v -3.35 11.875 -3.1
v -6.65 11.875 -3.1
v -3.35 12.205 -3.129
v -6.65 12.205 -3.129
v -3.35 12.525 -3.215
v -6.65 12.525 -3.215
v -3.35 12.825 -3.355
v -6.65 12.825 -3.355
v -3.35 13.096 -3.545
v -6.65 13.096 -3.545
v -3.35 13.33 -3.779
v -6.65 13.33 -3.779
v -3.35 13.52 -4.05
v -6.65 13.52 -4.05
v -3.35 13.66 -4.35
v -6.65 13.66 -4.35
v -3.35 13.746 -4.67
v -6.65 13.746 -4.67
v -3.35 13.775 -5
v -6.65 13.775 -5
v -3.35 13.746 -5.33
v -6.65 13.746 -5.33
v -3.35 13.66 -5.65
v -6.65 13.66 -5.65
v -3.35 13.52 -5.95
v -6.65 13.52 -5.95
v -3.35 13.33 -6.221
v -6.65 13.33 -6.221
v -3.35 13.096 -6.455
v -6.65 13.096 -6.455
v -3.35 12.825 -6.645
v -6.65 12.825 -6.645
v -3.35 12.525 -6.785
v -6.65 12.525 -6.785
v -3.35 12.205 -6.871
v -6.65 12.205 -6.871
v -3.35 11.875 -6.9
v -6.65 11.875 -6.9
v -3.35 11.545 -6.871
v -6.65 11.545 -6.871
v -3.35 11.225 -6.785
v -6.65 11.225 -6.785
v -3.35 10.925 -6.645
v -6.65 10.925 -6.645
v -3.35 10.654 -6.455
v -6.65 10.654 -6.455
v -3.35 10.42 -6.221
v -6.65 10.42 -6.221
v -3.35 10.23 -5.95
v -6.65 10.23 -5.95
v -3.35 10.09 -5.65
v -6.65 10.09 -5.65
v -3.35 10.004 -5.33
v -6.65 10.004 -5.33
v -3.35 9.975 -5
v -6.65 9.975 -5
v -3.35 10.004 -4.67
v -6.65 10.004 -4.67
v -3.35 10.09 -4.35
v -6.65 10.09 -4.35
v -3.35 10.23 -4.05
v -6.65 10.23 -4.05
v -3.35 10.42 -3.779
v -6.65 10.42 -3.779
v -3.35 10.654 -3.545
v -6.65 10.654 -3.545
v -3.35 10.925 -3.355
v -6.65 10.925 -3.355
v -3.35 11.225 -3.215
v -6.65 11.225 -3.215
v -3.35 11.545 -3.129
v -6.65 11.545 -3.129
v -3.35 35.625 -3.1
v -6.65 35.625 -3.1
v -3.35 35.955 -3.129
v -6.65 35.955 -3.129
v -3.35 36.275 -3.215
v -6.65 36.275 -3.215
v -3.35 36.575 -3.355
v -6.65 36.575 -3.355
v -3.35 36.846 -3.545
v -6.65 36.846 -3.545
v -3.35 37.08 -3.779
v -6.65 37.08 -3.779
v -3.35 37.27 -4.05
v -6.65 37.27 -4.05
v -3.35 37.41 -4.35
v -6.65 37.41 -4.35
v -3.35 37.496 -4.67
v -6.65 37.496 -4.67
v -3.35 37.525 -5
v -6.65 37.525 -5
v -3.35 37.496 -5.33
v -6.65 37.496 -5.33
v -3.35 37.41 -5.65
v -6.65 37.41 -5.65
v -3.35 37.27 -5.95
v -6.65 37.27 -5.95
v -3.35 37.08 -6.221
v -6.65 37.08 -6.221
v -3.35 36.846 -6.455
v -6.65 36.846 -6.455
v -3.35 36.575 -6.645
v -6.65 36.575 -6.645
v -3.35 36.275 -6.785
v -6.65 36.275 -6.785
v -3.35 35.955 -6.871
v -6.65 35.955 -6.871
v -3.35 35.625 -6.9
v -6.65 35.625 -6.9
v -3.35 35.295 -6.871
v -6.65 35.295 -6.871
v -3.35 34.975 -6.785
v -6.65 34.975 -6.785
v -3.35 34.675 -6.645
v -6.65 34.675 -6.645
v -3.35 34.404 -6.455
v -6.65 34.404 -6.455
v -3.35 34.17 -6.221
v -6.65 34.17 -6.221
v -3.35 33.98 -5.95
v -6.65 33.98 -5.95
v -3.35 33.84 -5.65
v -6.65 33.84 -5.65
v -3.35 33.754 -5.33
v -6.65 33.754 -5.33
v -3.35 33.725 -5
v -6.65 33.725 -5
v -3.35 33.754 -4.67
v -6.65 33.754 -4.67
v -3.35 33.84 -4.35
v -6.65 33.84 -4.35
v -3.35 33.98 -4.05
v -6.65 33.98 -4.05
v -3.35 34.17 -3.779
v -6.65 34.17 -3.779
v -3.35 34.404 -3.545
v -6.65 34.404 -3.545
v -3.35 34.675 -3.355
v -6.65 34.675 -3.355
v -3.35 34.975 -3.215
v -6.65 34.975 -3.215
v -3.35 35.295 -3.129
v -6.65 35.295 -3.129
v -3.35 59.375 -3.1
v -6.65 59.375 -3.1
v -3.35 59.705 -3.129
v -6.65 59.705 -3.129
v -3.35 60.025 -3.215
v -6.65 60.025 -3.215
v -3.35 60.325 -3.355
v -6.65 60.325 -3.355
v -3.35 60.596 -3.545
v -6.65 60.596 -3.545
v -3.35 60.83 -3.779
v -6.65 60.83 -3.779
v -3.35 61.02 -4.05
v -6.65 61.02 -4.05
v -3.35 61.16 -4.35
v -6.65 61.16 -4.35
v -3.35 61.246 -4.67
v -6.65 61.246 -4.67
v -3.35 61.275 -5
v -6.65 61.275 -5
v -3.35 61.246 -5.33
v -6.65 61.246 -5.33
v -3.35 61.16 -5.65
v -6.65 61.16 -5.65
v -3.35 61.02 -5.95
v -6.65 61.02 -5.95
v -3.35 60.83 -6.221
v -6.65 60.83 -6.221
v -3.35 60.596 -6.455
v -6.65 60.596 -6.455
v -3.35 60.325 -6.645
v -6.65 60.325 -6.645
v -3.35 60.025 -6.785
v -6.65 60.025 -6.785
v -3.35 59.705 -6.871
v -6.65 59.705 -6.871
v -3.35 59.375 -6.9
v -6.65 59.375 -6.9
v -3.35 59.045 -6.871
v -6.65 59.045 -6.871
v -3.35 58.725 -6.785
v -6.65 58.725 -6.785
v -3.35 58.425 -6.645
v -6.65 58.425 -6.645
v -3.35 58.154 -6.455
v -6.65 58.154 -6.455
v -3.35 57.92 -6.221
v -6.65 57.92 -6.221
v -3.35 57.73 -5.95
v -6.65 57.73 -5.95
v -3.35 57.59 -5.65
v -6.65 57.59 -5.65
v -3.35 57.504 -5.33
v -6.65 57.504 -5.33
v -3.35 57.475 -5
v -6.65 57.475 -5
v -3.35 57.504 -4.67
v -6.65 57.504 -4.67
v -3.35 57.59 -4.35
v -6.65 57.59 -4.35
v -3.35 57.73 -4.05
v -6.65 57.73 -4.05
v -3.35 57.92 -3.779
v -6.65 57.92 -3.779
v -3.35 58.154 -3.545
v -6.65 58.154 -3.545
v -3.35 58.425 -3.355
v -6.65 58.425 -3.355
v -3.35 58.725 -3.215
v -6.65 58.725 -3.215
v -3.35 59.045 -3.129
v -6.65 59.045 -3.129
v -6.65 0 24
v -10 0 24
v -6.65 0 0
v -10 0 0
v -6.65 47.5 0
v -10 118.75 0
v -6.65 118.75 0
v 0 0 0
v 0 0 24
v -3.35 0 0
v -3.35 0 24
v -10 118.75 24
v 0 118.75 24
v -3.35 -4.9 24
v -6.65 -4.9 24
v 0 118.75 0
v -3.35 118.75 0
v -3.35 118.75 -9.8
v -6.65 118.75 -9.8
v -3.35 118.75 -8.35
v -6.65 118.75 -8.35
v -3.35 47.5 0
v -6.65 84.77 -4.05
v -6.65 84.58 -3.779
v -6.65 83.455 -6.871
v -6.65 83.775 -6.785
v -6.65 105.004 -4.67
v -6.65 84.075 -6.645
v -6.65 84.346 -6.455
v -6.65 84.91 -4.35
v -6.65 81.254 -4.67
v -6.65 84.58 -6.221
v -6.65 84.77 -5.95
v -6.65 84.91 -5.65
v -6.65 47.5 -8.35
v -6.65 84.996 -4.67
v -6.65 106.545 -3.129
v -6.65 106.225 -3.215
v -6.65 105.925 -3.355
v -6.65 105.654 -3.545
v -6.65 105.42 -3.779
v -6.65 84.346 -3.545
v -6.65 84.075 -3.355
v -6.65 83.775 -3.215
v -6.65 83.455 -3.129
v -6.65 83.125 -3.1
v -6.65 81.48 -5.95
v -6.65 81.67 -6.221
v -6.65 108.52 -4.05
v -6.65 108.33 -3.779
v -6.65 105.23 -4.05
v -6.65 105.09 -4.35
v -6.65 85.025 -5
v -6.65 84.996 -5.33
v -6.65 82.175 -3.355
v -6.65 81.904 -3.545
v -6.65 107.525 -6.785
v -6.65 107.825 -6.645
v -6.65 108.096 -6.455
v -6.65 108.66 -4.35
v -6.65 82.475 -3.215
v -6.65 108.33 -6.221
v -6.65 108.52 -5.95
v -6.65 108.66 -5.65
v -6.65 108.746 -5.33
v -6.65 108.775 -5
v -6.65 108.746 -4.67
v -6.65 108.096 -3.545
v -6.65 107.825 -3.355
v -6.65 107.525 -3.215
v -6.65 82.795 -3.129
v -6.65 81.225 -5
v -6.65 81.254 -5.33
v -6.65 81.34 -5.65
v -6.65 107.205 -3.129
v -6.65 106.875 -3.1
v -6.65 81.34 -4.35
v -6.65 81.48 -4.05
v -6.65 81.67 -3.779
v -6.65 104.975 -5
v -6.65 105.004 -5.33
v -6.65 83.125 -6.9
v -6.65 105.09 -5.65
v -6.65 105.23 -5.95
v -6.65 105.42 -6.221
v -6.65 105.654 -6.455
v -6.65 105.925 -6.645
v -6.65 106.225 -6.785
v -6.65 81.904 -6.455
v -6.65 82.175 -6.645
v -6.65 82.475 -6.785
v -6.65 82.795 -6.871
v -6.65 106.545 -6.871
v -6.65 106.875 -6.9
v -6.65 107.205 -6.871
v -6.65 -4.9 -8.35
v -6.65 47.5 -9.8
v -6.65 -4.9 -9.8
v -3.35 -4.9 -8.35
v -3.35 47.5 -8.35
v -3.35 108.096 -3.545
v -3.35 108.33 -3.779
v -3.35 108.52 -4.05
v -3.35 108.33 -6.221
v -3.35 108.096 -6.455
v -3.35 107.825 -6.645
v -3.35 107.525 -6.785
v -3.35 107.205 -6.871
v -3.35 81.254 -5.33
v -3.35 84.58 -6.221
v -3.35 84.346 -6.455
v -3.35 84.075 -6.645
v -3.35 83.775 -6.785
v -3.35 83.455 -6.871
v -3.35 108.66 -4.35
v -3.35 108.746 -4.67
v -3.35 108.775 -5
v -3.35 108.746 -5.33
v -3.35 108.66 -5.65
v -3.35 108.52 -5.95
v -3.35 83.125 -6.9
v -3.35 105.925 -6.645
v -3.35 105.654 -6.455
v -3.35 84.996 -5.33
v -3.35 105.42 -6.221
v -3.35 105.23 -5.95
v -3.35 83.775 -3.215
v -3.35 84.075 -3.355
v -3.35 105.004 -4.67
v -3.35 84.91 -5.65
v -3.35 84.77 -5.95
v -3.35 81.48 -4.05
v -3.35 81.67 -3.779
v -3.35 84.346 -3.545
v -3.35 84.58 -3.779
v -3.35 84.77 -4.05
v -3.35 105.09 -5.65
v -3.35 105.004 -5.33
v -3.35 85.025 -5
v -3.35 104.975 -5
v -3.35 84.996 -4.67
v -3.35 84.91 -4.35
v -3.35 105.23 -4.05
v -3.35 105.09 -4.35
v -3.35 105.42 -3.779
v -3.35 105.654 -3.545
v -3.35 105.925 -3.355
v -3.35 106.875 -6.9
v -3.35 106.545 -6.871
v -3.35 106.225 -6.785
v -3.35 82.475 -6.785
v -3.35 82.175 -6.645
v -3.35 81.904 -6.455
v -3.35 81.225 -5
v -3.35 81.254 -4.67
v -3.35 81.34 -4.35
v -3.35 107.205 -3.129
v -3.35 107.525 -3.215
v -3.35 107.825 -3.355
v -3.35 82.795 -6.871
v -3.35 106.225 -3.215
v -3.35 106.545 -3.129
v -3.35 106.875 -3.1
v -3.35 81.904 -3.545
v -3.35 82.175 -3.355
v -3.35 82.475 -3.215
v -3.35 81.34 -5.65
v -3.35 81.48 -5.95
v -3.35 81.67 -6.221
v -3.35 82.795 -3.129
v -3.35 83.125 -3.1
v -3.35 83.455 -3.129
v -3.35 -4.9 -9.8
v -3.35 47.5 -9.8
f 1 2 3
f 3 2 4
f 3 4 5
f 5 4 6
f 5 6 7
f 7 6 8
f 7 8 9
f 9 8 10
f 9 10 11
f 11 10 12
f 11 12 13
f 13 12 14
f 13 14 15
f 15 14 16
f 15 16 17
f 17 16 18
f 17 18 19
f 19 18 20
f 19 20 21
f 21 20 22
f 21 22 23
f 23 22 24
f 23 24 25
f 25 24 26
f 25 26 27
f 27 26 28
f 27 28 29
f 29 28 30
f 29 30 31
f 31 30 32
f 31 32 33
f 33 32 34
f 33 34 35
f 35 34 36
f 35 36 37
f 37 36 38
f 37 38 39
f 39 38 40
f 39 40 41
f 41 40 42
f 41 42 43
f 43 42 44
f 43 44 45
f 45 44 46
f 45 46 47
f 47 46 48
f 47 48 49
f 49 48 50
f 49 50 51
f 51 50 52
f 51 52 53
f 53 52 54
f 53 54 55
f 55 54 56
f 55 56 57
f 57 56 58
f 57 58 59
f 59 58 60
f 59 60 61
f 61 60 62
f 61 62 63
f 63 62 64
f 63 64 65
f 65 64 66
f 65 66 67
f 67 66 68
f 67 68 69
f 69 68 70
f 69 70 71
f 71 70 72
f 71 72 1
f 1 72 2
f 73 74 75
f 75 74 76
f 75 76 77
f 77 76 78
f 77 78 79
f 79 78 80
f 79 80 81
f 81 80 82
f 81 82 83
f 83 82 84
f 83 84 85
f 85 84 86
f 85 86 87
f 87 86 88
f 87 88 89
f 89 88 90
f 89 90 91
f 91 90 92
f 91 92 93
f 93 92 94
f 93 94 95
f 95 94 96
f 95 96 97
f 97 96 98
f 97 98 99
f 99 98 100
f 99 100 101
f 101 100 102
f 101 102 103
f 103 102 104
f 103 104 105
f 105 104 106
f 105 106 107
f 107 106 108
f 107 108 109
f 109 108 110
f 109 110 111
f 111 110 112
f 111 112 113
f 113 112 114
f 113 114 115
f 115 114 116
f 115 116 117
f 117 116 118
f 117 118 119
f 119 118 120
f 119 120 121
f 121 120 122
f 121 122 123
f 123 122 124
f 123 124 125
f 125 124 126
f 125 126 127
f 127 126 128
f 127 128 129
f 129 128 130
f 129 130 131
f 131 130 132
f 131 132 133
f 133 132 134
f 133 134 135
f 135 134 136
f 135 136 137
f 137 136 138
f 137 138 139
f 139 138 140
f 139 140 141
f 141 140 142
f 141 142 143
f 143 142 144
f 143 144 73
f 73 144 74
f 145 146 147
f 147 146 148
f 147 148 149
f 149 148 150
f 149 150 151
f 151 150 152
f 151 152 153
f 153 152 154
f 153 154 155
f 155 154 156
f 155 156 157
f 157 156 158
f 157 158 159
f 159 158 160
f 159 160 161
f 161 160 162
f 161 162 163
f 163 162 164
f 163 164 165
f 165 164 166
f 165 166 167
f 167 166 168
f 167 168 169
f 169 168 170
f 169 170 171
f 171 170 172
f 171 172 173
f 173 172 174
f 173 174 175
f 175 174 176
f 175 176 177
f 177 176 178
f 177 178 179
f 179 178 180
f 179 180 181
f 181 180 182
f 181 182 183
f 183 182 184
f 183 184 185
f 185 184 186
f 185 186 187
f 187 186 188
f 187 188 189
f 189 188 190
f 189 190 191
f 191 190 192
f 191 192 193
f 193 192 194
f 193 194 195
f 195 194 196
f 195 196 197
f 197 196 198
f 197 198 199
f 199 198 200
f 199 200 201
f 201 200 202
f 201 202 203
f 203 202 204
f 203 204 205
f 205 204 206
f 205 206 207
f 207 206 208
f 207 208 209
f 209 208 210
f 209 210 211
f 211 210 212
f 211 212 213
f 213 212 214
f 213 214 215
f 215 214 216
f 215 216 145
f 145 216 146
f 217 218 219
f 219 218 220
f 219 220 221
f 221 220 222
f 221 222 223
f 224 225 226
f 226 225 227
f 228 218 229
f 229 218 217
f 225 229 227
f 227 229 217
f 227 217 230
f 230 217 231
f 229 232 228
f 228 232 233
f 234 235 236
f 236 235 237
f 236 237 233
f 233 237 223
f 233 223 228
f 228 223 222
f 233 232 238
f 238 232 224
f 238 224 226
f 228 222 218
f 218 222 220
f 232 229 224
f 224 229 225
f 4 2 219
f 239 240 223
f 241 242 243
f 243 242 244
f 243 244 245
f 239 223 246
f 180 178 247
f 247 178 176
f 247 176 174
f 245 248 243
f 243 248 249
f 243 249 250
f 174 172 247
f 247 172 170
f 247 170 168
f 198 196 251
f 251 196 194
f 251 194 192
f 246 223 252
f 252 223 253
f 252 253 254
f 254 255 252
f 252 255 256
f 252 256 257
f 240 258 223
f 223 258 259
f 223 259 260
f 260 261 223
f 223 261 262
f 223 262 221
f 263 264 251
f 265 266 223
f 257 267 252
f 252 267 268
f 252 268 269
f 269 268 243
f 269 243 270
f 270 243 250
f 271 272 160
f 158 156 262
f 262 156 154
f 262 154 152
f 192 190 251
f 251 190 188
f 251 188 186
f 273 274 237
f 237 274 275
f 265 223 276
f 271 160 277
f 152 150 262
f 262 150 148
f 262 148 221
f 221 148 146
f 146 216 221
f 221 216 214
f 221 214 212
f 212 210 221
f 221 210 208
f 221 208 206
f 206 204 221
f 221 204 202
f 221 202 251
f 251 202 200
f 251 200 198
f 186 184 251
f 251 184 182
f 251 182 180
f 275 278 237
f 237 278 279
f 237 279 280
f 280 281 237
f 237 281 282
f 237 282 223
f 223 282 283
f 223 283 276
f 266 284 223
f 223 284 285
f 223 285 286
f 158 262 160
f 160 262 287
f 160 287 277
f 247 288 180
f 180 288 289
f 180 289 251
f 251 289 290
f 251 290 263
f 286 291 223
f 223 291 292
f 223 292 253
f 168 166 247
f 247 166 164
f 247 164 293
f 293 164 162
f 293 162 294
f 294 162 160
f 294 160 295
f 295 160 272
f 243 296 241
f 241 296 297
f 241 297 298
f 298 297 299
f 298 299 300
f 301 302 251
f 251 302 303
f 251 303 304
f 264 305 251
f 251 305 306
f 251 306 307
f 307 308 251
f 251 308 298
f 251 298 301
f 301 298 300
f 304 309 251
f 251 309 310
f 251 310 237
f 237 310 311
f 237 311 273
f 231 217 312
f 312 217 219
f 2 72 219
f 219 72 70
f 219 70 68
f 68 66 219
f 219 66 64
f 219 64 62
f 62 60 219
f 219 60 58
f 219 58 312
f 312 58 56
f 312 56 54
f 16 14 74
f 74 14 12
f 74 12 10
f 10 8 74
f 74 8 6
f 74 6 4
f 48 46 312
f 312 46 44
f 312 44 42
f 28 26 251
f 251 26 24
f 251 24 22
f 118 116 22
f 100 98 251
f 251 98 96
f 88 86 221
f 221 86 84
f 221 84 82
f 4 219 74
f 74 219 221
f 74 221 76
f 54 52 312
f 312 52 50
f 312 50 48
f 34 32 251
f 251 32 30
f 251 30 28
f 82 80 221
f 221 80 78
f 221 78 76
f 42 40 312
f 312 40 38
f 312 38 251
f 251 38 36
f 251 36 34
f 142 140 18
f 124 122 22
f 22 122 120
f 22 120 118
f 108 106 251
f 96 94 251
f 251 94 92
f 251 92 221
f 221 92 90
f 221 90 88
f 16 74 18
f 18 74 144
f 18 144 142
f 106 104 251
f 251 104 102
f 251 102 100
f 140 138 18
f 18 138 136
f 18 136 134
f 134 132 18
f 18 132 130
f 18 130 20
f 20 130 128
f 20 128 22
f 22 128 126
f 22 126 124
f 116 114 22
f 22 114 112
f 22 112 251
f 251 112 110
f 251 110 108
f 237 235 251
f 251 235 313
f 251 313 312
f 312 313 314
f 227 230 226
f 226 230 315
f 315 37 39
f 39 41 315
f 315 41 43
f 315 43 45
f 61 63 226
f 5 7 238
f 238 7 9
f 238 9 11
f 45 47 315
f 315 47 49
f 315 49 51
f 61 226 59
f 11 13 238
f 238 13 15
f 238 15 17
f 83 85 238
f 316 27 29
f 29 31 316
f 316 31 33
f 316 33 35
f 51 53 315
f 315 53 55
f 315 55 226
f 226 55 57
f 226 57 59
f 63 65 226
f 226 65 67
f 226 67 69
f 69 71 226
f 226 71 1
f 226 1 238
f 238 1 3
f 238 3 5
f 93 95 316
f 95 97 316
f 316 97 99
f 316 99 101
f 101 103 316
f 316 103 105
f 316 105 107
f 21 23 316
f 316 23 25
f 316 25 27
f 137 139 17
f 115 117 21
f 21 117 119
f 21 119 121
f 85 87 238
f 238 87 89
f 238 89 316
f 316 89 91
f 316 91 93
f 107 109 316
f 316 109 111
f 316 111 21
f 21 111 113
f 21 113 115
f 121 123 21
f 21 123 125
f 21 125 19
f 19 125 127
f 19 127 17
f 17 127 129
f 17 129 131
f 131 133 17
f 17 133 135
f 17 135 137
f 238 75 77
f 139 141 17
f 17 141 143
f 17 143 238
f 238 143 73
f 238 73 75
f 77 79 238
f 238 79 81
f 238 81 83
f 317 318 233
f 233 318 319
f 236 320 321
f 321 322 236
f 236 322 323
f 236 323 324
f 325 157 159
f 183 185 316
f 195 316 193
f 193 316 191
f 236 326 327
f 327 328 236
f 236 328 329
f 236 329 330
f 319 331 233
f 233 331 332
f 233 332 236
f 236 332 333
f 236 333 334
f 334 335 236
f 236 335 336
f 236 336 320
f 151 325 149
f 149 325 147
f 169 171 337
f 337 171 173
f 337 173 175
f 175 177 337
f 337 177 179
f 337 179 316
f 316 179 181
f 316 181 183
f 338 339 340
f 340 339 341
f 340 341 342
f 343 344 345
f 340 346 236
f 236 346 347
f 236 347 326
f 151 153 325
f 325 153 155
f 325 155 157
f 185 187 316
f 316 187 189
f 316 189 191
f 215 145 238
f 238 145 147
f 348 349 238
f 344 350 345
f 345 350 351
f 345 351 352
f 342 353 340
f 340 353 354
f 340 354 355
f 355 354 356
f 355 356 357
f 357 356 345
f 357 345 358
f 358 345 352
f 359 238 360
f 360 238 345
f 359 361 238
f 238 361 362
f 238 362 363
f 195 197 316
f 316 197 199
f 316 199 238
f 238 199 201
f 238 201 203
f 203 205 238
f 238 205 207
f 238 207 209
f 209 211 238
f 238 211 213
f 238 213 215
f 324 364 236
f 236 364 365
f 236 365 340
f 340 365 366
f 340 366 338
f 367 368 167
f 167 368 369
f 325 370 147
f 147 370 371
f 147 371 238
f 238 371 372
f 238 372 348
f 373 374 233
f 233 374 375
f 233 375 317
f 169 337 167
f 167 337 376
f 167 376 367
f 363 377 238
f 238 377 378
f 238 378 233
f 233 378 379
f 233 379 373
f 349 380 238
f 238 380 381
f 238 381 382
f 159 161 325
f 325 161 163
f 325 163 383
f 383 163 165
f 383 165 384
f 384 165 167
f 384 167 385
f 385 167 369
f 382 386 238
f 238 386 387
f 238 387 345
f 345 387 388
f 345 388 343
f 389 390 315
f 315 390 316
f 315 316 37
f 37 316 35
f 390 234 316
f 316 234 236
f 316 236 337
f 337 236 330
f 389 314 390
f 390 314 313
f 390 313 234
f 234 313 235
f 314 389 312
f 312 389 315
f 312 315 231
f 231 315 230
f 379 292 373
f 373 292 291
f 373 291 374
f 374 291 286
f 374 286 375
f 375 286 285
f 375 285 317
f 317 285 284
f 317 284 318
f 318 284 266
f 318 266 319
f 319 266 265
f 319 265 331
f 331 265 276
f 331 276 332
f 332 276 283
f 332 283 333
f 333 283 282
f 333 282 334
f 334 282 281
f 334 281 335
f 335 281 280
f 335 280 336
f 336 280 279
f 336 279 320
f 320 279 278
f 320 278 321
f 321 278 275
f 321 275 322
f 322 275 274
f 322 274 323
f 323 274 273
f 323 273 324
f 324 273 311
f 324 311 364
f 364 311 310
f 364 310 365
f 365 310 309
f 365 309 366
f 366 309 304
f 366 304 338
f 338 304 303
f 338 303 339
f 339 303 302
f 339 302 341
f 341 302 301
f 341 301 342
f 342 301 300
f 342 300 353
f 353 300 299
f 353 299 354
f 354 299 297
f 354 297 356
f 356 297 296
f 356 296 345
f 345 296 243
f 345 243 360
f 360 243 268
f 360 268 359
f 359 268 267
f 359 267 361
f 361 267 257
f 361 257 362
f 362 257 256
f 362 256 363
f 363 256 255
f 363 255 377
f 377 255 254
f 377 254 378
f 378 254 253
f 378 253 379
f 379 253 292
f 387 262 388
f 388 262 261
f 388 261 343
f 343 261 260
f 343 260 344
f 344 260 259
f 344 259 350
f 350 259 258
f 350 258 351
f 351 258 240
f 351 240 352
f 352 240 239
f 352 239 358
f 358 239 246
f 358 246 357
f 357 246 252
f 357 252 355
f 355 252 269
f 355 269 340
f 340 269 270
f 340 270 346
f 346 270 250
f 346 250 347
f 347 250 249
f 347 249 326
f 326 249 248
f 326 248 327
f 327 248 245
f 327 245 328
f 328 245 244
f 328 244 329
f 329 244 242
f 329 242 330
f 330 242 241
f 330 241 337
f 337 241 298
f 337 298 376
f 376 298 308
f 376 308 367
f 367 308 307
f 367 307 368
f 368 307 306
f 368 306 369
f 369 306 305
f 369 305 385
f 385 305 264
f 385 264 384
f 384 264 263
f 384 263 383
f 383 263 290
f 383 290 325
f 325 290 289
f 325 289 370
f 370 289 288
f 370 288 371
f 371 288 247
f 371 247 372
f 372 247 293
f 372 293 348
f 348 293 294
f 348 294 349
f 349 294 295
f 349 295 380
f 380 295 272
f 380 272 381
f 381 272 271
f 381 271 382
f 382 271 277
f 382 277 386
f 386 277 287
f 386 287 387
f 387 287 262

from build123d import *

# Parameters (mm, degrees)
SKETCH1_W           = 118.75
SKETCH1_H           = 24
BOSS_EXTRUDE1_DEPTH = 10
SKETCH2_W           = 3.3
SKETCH2_H           = 9.8
BOSS_EXTRUDE2_DEPTH = 118.75
SKETCH3_W           = 3.3
SKETCH3_H           = 33.8
BOSS_EXTRUDE3_DEPTH = 4.9
CUT_EXTRUDE1_REACH  = 123.333
SKETCH4_R           = 1.9
LPATTERN1_COUNT     = 5
LPATTERN1_PITCH     = 23.75


with BuildPart() as part:
    # Sketch1 → Boss-Extrude1 (new body)
    with BuildSketch(Plane.YZ):
        with Locations((59.375, 12)):
            Rectangle(SKETCH1_W, SKETCH1_H)
    extrude(amount=-BOSS_EXTRUDE1_DEPTH)

    # Sketch2 → Boss-Extrude2 (add, through all)
    with BuildSketch(Plane.XZ):
        with Locations((-5, -4.9)):
            Rectangle(SKETCH2_W, SKETCH2_H)
    extrude(amount=-BOSS_EXTRUDE2_DEPTH)

    # Sketch3 → Boss-Extrude3 (add)
    with BuildSketch(Plane.XZ):
        with Locations((-5, 7.1)):
            Rectangle(SKETCH3_W, SKETCH3_H)
    extrude(amount=BOSS_EXTRUDE3_DEPTH)

    # Sketch4 → Cut-Extrude1 (cut, up to next)
    with BuildSketch(Plane(origin=(-6.65, 0, 0), x_dir=(0, -1, 0), z_dir=(-1, 0, 0)), mode=Mode.PRIVATE) as cut_extrude1_sk1:
        with Locations(Location((-106.875, -5, 0), (0, 0, 90))):
            Circle(SKETCH4_R)
    cut_extrude1_tool1 = extrude(cut_extrude1_sk1.sketch, amount=-CUT_EXTRUDE1_REACH, mode=Mode.PRIVATE) & part.part
    cut_extrude1 = cut_extrude1_tool1.solids().sort_by_distance((-6.65, 106.875, -5))[0]
    add(cut_extrude1, mode=Mode.SUBTRACT)

    # LPattern1: Cut-Extrude1 ×5
    with Locations(*[(0, -i * LPATTERN1_PITCH, 0) for i in range(1, LPATTERN1_COUNT)]):
        add(cut_extrude1, mode=Mode.SUBTRACT)


solid = part.part
